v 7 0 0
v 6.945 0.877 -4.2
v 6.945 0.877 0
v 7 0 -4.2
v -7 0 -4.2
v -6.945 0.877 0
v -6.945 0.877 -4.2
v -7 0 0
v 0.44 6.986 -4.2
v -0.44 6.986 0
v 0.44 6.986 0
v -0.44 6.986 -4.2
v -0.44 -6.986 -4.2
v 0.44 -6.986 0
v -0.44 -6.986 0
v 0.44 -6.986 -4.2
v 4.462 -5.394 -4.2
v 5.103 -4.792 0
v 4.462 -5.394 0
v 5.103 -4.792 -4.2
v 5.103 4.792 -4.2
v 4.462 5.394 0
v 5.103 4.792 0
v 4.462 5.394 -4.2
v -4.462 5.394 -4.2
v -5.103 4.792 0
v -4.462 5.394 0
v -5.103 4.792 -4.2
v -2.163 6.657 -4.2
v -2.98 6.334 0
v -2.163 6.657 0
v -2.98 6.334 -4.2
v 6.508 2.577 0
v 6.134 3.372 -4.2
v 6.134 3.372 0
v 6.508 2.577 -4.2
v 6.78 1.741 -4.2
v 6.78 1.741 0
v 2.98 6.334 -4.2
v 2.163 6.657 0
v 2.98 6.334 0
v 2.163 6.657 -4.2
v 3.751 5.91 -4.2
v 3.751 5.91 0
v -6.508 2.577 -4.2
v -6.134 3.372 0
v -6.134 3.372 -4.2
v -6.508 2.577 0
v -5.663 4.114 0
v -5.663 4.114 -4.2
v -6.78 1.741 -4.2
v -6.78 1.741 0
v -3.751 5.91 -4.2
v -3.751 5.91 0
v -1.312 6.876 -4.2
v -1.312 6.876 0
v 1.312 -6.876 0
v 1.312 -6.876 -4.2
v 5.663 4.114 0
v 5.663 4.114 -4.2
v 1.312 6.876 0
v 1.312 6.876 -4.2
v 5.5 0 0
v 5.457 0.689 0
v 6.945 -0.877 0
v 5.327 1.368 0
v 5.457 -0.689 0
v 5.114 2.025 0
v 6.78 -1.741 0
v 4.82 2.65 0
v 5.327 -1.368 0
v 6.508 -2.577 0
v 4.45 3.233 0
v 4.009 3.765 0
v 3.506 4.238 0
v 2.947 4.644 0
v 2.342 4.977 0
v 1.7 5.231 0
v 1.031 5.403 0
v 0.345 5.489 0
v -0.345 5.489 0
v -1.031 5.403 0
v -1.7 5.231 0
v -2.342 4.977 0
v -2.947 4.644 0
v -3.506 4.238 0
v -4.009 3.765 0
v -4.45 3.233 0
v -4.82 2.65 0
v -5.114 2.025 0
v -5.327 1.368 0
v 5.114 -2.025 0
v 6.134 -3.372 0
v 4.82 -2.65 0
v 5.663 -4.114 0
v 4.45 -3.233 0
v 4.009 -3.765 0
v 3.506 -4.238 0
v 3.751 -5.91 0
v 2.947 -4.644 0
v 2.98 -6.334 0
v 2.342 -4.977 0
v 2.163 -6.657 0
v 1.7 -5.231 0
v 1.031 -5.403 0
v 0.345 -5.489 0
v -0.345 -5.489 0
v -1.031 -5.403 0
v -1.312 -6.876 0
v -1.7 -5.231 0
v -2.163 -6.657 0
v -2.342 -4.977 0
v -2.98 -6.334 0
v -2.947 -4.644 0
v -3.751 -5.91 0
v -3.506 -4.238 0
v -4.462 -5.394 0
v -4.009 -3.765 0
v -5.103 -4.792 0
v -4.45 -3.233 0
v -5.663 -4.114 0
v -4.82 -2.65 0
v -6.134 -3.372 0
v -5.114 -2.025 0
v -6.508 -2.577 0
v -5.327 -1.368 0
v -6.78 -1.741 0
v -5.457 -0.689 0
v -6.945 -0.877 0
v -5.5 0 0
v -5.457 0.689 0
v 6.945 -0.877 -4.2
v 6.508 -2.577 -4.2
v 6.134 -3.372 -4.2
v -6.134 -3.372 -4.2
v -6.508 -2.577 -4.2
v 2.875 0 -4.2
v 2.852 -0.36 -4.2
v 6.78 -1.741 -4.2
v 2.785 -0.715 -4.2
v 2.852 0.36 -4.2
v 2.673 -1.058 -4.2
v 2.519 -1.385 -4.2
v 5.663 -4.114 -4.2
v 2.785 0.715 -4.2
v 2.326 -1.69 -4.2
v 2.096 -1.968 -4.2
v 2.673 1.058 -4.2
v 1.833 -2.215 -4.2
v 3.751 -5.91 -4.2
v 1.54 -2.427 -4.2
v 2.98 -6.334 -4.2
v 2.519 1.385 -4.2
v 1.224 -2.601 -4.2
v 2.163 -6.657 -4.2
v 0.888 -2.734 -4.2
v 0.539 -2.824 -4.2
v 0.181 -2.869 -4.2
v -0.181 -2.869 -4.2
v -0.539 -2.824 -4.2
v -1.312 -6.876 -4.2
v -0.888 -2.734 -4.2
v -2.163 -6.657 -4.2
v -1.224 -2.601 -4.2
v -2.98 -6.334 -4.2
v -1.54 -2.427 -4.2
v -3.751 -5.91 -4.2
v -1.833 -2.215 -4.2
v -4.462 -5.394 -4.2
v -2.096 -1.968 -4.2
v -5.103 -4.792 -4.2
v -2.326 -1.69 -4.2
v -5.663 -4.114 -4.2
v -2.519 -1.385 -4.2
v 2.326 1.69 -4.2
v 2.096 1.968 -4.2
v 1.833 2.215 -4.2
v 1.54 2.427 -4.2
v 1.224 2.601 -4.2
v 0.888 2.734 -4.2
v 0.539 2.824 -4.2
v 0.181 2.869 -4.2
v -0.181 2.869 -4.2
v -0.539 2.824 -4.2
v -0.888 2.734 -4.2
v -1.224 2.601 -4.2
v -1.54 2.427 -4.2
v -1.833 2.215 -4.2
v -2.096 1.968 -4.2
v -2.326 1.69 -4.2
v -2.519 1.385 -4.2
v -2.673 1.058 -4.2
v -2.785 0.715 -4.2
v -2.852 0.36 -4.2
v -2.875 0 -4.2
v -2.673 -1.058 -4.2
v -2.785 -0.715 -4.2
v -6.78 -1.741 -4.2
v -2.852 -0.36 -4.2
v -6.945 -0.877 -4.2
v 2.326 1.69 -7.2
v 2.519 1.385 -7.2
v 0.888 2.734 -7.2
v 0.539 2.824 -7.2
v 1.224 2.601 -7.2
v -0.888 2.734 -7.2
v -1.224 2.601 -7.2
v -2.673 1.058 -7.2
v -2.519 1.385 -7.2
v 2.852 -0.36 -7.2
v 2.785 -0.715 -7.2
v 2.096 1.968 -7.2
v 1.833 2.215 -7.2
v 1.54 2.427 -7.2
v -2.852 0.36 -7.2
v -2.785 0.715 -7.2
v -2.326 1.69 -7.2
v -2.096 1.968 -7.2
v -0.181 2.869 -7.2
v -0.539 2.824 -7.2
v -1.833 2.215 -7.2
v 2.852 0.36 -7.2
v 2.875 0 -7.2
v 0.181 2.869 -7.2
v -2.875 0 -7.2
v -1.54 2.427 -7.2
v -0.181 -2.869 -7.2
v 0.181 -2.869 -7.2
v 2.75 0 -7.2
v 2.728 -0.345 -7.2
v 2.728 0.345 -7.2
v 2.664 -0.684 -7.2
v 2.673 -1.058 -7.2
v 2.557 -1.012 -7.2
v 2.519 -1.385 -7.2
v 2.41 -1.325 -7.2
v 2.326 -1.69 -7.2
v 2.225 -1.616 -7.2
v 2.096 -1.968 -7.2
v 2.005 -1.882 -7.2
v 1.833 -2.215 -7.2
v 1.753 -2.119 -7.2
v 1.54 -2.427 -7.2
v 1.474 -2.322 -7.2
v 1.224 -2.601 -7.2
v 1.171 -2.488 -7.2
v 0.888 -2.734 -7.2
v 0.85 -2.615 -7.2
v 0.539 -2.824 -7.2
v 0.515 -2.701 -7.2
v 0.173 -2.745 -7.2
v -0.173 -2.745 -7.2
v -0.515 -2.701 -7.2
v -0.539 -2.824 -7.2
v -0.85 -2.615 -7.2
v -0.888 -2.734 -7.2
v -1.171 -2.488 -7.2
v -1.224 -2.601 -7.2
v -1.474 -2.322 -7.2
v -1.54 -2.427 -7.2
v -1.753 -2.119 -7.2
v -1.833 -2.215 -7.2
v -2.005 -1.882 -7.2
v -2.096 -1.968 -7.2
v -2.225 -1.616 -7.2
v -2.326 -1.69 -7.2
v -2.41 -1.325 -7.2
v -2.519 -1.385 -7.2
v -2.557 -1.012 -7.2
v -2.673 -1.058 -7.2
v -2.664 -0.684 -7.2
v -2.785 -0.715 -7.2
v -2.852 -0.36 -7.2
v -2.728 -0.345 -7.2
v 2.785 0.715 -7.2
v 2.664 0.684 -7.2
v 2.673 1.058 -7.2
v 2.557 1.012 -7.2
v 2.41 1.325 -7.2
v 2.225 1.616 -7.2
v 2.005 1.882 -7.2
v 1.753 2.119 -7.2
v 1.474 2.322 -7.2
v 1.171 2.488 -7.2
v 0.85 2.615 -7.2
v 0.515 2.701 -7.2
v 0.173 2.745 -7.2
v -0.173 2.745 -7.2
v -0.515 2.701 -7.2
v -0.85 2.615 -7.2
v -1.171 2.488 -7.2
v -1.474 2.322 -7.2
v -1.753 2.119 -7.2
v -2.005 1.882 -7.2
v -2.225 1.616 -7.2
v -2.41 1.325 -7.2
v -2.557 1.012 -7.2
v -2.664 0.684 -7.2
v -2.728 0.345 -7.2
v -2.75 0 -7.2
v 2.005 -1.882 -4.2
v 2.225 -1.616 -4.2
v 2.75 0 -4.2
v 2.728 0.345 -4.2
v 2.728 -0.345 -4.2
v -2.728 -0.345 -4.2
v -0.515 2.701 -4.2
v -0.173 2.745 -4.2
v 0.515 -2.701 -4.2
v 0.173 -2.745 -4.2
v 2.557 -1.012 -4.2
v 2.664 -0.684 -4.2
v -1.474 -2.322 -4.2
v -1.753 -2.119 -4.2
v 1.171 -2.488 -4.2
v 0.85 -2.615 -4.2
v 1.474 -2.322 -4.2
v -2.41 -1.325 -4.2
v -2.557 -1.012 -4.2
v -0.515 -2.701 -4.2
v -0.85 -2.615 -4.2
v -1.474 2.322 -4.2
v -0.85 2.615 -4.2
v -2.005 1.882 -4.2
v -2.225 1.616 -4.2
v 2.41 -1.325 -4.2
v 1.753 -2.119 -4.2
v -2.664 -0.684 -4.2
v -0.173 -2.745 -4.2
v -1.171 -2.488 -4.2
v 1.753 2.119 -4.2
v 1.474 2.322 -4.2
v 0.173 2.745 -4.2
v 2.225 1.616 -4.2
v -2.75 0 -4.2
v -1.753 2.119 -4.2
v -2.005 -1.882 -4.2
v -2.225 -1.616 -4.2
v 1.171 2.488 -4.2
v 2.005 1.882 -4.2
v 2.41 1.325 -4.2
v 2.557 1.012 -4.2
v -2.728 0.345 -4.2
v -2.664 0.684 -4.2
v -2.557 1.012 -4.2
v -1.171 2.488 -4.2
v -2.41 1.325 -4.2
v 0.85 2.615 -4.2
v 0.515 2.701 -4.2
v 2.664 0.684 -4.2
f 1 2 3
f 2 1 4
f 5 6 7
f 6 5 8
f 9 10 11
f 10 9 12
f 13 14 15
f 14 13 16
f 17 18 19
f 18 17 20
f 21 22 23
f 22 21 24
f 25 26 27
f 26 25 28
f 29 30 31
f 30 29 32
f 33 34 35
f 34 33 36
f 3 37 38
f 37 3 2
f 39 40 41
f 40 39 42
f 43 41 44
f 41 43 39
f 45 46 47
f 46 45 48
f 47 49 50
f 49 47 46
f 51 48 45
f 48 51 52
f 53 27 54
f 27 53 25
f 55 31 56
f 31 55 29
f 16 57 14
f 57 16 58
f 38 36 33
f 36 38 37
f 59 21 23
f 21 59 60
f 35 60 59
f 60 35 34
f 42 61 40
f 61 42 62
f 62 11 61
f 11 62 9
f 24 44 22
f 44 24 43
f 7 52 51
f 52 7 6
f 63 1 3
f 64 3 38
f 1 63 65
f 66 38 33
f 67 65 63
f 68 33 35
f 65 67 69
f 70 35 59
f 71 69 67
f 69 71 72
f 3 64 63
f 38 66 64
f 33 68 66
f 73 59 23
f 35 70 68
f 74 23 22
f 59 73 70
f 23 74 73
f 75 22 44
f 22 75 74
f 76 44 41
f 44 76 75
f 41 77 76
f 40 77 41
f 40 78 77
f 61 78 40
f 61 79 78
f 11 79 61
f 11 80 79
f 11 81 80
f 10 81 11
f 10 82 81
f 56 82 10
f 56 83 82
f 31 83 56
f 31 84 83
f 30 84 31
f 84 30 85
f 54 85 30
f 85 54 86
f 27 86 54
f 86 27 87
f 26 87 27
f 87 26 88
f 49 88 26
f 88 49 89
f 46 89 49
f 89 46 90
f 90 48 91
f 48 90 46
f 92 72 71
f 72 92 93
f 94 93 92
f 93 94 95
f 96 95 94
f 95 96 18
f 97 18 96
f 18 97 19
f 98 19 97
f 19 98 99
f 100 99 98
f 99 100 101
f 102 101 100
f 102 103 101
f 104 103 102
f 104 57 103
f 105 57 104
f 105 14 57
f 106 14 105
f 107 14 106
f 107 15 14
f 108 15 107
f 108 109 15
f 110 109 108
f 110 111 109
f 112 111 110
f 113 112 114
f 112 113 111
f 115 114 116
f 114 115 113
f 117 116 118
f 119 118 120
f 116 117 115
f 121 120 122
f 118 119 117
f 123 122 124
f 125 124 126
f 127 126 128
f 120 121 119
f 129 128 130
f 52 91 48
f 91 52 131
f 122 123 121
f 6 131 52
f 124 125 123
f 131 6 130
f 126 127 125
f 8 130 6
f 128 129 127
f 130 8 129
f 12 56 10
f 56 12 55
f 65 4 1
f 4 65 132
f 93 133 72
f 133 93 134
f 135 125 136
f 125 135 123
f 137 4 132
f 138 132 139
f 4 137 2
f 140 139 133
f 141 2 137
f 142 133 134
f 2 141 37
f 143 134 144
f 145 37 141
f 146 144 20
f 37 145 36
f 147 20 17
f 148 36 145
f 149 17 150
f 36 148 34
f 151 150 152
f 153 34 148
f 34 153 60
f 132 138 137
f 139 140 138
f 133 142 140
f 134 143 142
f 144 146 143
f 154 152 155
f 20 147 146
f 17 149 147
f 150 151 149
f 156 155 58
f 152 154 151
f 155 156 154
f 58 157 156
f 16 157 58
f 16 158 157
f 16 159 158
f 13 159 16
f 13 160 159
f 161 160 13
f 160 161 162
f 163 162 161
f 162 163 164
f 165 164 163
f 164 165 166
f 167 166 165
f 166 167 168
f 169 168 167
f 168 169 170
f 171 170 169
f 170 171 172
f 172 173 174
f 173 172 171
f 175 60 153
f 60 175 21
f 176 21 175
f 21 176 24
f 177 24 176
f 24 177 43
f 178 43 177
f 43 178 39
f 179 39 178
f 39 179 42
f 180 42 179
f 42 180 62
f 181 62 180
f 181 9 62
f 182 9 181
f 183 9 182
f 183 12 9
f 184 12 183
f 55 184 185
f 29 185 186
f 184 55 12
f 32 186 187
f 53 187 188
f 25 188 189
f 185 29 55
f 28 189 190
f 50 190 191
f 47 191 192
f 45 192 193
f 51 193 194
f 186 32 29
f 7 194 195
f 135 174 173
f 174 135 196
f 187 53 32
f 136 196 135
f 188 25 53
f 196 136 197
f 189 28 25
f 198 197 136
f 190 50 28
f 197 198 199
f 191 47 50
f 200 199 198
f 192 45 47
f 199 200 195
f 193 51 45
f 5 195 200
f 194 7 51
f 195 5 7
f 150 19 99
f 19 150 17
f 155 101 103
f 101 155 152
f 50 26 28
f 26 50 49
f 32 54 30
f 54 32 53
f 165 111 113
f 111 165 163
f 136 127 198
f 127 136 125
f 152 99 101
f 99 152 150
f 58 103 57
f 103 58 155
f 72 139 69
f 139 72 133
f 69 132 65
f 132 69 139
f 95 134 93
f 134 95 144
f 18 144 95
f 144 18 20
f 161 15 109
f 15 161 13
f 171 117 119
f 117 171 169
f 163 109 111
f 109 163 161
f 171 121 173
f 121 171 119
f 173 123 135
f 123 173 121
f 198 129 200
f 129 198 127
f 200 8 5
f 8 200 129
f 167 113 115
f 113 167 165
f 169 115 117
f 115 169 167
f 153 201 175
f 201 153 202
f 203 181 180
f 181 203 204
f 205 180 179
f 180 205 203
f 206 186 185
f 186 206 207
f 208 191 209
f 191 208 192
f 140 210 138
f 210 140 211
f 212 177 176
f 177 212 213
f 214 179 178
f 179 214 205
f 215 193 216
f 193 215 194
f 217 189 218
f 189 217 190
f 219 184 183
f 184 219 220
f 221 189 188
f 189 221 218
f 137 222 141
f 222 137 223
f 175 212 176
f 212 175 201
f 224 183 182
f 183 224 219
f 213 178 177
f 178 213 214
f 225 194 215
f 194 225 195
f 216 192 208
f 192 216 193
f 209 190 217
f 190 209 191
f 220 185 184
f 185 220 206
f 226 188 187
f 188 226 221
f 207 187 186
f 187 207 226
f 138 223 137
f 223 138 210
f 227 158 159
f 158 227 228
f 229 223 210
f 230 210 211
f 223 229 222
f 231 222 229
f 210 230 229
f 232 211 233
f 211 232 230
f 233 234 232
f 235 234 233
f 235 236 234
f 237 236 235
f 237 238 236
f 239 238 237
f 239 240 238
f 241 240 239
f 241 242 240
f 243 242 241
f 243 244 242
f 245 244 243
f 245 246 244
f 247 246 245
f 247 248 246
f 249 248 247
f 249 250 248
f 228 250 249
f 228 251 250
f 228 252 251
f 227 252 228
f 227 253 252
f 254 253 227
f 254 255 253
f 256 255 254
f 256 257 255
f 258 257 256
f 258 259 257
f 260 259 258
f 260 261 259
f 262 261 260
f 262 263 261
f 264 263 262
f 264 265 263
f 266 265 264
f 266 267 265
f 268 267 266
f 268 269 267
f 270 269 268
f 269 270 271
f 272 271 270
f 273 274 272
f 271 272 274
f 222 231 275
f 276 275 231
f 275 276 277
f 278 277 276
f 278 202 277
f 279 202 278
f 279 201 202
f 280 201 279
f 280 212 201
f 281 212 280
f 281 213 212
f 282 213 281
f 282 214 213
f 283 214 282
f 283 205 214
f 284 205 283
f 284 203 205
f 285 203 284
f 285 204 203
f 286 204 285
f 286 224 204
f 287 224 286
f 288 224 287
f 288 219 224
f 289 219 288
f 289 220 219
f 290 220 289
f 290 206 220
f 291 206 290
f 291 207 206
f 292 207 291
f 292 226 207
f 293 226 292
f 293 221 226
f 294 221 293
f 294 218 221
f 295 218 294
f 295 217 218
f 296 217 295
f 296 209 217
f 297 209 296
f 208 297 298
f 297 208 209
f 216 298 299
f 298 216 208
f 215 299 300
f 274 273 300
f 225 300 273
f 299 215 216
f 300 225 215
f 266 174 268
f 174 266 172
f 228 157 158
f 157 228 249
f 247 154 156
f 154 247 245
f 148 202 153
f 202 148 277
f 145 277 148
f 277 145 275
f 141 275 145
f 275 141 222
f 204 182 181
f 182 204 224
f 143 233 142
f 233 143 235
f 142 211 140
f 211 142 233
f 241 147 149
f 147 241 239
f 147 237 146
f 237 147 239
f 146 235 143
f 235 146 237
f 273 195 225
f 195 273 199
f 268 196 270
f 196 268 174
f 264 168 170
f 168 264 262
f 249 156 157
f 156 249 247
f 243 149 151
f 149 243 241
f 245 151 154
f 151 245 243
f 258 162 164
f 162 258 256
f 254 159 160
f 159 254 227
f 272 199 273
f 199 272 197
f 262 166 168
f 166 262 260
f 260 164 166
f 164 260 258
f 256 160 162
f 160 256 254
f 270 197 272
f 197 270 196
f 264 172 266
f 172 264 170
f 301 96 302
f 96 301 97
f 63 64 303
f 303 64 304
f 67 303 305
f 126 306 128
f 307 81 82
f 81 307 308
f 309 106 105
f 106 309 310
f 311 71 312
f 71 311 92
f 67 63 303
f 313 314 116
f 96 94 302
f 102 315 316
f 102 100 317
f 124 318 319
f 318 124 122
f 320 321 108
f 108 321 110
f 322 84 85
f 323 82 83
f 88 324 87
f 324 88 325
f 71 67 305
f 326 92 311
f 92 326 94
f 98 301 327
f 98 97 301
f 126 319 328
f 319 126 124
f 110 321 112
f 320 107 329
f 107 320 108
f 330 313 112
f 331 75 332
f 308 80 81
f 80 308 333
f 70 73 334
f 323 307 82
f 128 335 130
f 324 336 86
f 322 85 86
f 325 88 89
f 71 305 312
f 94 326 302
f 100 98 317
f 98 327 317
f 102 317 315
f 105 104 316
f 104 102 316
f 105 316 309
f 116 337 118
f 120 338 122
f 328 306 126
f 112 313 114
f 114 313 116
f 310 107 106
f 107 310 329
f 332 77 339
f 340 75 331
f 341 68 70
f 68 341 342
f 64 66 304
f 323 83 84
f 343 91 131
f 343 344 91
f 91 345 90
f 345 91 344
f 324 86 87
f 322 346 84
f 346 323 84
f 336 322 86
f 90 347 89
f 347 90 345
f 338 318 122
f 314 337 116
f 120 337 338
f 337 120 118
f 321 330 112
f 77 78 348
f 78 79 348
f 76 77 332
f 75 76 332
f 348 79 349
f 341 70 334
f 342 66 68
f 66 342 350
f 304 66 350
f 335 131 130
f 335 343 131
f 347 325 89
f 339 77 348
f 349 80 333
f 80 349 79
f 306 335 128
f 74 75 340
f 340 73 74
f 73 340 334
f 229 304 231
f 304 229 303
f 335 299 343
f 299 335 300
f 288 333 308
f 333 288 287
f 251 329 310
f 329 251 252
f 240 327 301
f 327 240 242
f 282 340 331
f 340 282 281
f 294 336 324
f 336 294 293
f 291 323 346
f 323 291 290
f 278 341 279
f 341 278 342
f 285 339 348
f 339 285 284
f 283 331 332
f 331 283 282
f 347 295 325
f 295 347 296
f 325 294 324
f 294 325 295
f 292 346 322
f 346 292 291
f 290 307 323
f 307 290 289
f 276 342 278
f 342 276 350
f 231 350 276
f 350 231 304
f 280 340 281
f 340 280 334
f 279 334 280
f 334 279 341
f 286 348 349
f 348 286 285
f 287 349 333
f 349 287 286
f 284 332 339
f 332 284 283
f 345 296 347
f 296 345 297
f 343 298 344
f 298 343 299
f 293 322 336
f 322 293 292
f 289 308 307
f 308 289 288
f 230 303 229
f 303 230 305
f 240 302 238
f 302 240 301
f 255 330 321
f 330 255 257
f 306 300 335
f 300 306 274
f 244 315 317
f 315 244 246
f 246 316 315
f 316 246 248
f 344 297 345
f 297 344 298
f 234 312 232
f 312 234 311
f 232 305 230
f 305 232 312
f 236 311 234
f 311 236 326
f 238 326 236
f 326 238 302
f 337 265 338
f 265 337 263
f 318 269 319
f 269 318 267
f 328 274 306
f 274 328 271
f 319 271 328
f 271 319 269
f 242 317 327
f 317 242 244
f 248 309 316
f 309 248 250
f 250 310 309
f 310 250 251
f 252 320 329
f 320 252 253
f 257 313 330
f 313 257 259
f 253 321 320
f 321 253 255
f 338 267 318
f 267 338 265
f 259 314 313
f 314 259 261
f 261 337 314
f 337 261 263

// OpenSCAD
$fn = 50;


difference() {
	union() {
		translate(v = [0, 0, -4.2000000000]) {
			cylinder(h = 4.2000000000, r = 7.0000000000);
		}
		#translate(v = [0, 0, -7.2000000000]) {
			cylinder(h = 7.2000000000, r = 2.8750000000);
		}
	}
	union() {
		translate(v = [0, 0, 0]) {
			rotate(a = [0, 0, 0]) {
				difference() {
					union() {
						translate(v = [0, 0, -7.2000000000]) {
							cylinder(h = 7.2000000000, r = 2.2500000000);
						}
						translate(v = [0, 0, -4.2000000000]) {
							cylinder(h = 4.2000000000, r1 = 2.7500000000, r2 = 5.5000000000);
						}
						translate(v = [0, 0, -7.2000000000]) {
							cylinder(h = 7.2000000000, r = 2.7500000000);
						}
						translate(v = [0, 0, -7.2000000000]) {
							cylinder(h = 7.2000000000, r = 2.2500000000);
						}
					}
					union();
				}
			}
		}
	}
}
